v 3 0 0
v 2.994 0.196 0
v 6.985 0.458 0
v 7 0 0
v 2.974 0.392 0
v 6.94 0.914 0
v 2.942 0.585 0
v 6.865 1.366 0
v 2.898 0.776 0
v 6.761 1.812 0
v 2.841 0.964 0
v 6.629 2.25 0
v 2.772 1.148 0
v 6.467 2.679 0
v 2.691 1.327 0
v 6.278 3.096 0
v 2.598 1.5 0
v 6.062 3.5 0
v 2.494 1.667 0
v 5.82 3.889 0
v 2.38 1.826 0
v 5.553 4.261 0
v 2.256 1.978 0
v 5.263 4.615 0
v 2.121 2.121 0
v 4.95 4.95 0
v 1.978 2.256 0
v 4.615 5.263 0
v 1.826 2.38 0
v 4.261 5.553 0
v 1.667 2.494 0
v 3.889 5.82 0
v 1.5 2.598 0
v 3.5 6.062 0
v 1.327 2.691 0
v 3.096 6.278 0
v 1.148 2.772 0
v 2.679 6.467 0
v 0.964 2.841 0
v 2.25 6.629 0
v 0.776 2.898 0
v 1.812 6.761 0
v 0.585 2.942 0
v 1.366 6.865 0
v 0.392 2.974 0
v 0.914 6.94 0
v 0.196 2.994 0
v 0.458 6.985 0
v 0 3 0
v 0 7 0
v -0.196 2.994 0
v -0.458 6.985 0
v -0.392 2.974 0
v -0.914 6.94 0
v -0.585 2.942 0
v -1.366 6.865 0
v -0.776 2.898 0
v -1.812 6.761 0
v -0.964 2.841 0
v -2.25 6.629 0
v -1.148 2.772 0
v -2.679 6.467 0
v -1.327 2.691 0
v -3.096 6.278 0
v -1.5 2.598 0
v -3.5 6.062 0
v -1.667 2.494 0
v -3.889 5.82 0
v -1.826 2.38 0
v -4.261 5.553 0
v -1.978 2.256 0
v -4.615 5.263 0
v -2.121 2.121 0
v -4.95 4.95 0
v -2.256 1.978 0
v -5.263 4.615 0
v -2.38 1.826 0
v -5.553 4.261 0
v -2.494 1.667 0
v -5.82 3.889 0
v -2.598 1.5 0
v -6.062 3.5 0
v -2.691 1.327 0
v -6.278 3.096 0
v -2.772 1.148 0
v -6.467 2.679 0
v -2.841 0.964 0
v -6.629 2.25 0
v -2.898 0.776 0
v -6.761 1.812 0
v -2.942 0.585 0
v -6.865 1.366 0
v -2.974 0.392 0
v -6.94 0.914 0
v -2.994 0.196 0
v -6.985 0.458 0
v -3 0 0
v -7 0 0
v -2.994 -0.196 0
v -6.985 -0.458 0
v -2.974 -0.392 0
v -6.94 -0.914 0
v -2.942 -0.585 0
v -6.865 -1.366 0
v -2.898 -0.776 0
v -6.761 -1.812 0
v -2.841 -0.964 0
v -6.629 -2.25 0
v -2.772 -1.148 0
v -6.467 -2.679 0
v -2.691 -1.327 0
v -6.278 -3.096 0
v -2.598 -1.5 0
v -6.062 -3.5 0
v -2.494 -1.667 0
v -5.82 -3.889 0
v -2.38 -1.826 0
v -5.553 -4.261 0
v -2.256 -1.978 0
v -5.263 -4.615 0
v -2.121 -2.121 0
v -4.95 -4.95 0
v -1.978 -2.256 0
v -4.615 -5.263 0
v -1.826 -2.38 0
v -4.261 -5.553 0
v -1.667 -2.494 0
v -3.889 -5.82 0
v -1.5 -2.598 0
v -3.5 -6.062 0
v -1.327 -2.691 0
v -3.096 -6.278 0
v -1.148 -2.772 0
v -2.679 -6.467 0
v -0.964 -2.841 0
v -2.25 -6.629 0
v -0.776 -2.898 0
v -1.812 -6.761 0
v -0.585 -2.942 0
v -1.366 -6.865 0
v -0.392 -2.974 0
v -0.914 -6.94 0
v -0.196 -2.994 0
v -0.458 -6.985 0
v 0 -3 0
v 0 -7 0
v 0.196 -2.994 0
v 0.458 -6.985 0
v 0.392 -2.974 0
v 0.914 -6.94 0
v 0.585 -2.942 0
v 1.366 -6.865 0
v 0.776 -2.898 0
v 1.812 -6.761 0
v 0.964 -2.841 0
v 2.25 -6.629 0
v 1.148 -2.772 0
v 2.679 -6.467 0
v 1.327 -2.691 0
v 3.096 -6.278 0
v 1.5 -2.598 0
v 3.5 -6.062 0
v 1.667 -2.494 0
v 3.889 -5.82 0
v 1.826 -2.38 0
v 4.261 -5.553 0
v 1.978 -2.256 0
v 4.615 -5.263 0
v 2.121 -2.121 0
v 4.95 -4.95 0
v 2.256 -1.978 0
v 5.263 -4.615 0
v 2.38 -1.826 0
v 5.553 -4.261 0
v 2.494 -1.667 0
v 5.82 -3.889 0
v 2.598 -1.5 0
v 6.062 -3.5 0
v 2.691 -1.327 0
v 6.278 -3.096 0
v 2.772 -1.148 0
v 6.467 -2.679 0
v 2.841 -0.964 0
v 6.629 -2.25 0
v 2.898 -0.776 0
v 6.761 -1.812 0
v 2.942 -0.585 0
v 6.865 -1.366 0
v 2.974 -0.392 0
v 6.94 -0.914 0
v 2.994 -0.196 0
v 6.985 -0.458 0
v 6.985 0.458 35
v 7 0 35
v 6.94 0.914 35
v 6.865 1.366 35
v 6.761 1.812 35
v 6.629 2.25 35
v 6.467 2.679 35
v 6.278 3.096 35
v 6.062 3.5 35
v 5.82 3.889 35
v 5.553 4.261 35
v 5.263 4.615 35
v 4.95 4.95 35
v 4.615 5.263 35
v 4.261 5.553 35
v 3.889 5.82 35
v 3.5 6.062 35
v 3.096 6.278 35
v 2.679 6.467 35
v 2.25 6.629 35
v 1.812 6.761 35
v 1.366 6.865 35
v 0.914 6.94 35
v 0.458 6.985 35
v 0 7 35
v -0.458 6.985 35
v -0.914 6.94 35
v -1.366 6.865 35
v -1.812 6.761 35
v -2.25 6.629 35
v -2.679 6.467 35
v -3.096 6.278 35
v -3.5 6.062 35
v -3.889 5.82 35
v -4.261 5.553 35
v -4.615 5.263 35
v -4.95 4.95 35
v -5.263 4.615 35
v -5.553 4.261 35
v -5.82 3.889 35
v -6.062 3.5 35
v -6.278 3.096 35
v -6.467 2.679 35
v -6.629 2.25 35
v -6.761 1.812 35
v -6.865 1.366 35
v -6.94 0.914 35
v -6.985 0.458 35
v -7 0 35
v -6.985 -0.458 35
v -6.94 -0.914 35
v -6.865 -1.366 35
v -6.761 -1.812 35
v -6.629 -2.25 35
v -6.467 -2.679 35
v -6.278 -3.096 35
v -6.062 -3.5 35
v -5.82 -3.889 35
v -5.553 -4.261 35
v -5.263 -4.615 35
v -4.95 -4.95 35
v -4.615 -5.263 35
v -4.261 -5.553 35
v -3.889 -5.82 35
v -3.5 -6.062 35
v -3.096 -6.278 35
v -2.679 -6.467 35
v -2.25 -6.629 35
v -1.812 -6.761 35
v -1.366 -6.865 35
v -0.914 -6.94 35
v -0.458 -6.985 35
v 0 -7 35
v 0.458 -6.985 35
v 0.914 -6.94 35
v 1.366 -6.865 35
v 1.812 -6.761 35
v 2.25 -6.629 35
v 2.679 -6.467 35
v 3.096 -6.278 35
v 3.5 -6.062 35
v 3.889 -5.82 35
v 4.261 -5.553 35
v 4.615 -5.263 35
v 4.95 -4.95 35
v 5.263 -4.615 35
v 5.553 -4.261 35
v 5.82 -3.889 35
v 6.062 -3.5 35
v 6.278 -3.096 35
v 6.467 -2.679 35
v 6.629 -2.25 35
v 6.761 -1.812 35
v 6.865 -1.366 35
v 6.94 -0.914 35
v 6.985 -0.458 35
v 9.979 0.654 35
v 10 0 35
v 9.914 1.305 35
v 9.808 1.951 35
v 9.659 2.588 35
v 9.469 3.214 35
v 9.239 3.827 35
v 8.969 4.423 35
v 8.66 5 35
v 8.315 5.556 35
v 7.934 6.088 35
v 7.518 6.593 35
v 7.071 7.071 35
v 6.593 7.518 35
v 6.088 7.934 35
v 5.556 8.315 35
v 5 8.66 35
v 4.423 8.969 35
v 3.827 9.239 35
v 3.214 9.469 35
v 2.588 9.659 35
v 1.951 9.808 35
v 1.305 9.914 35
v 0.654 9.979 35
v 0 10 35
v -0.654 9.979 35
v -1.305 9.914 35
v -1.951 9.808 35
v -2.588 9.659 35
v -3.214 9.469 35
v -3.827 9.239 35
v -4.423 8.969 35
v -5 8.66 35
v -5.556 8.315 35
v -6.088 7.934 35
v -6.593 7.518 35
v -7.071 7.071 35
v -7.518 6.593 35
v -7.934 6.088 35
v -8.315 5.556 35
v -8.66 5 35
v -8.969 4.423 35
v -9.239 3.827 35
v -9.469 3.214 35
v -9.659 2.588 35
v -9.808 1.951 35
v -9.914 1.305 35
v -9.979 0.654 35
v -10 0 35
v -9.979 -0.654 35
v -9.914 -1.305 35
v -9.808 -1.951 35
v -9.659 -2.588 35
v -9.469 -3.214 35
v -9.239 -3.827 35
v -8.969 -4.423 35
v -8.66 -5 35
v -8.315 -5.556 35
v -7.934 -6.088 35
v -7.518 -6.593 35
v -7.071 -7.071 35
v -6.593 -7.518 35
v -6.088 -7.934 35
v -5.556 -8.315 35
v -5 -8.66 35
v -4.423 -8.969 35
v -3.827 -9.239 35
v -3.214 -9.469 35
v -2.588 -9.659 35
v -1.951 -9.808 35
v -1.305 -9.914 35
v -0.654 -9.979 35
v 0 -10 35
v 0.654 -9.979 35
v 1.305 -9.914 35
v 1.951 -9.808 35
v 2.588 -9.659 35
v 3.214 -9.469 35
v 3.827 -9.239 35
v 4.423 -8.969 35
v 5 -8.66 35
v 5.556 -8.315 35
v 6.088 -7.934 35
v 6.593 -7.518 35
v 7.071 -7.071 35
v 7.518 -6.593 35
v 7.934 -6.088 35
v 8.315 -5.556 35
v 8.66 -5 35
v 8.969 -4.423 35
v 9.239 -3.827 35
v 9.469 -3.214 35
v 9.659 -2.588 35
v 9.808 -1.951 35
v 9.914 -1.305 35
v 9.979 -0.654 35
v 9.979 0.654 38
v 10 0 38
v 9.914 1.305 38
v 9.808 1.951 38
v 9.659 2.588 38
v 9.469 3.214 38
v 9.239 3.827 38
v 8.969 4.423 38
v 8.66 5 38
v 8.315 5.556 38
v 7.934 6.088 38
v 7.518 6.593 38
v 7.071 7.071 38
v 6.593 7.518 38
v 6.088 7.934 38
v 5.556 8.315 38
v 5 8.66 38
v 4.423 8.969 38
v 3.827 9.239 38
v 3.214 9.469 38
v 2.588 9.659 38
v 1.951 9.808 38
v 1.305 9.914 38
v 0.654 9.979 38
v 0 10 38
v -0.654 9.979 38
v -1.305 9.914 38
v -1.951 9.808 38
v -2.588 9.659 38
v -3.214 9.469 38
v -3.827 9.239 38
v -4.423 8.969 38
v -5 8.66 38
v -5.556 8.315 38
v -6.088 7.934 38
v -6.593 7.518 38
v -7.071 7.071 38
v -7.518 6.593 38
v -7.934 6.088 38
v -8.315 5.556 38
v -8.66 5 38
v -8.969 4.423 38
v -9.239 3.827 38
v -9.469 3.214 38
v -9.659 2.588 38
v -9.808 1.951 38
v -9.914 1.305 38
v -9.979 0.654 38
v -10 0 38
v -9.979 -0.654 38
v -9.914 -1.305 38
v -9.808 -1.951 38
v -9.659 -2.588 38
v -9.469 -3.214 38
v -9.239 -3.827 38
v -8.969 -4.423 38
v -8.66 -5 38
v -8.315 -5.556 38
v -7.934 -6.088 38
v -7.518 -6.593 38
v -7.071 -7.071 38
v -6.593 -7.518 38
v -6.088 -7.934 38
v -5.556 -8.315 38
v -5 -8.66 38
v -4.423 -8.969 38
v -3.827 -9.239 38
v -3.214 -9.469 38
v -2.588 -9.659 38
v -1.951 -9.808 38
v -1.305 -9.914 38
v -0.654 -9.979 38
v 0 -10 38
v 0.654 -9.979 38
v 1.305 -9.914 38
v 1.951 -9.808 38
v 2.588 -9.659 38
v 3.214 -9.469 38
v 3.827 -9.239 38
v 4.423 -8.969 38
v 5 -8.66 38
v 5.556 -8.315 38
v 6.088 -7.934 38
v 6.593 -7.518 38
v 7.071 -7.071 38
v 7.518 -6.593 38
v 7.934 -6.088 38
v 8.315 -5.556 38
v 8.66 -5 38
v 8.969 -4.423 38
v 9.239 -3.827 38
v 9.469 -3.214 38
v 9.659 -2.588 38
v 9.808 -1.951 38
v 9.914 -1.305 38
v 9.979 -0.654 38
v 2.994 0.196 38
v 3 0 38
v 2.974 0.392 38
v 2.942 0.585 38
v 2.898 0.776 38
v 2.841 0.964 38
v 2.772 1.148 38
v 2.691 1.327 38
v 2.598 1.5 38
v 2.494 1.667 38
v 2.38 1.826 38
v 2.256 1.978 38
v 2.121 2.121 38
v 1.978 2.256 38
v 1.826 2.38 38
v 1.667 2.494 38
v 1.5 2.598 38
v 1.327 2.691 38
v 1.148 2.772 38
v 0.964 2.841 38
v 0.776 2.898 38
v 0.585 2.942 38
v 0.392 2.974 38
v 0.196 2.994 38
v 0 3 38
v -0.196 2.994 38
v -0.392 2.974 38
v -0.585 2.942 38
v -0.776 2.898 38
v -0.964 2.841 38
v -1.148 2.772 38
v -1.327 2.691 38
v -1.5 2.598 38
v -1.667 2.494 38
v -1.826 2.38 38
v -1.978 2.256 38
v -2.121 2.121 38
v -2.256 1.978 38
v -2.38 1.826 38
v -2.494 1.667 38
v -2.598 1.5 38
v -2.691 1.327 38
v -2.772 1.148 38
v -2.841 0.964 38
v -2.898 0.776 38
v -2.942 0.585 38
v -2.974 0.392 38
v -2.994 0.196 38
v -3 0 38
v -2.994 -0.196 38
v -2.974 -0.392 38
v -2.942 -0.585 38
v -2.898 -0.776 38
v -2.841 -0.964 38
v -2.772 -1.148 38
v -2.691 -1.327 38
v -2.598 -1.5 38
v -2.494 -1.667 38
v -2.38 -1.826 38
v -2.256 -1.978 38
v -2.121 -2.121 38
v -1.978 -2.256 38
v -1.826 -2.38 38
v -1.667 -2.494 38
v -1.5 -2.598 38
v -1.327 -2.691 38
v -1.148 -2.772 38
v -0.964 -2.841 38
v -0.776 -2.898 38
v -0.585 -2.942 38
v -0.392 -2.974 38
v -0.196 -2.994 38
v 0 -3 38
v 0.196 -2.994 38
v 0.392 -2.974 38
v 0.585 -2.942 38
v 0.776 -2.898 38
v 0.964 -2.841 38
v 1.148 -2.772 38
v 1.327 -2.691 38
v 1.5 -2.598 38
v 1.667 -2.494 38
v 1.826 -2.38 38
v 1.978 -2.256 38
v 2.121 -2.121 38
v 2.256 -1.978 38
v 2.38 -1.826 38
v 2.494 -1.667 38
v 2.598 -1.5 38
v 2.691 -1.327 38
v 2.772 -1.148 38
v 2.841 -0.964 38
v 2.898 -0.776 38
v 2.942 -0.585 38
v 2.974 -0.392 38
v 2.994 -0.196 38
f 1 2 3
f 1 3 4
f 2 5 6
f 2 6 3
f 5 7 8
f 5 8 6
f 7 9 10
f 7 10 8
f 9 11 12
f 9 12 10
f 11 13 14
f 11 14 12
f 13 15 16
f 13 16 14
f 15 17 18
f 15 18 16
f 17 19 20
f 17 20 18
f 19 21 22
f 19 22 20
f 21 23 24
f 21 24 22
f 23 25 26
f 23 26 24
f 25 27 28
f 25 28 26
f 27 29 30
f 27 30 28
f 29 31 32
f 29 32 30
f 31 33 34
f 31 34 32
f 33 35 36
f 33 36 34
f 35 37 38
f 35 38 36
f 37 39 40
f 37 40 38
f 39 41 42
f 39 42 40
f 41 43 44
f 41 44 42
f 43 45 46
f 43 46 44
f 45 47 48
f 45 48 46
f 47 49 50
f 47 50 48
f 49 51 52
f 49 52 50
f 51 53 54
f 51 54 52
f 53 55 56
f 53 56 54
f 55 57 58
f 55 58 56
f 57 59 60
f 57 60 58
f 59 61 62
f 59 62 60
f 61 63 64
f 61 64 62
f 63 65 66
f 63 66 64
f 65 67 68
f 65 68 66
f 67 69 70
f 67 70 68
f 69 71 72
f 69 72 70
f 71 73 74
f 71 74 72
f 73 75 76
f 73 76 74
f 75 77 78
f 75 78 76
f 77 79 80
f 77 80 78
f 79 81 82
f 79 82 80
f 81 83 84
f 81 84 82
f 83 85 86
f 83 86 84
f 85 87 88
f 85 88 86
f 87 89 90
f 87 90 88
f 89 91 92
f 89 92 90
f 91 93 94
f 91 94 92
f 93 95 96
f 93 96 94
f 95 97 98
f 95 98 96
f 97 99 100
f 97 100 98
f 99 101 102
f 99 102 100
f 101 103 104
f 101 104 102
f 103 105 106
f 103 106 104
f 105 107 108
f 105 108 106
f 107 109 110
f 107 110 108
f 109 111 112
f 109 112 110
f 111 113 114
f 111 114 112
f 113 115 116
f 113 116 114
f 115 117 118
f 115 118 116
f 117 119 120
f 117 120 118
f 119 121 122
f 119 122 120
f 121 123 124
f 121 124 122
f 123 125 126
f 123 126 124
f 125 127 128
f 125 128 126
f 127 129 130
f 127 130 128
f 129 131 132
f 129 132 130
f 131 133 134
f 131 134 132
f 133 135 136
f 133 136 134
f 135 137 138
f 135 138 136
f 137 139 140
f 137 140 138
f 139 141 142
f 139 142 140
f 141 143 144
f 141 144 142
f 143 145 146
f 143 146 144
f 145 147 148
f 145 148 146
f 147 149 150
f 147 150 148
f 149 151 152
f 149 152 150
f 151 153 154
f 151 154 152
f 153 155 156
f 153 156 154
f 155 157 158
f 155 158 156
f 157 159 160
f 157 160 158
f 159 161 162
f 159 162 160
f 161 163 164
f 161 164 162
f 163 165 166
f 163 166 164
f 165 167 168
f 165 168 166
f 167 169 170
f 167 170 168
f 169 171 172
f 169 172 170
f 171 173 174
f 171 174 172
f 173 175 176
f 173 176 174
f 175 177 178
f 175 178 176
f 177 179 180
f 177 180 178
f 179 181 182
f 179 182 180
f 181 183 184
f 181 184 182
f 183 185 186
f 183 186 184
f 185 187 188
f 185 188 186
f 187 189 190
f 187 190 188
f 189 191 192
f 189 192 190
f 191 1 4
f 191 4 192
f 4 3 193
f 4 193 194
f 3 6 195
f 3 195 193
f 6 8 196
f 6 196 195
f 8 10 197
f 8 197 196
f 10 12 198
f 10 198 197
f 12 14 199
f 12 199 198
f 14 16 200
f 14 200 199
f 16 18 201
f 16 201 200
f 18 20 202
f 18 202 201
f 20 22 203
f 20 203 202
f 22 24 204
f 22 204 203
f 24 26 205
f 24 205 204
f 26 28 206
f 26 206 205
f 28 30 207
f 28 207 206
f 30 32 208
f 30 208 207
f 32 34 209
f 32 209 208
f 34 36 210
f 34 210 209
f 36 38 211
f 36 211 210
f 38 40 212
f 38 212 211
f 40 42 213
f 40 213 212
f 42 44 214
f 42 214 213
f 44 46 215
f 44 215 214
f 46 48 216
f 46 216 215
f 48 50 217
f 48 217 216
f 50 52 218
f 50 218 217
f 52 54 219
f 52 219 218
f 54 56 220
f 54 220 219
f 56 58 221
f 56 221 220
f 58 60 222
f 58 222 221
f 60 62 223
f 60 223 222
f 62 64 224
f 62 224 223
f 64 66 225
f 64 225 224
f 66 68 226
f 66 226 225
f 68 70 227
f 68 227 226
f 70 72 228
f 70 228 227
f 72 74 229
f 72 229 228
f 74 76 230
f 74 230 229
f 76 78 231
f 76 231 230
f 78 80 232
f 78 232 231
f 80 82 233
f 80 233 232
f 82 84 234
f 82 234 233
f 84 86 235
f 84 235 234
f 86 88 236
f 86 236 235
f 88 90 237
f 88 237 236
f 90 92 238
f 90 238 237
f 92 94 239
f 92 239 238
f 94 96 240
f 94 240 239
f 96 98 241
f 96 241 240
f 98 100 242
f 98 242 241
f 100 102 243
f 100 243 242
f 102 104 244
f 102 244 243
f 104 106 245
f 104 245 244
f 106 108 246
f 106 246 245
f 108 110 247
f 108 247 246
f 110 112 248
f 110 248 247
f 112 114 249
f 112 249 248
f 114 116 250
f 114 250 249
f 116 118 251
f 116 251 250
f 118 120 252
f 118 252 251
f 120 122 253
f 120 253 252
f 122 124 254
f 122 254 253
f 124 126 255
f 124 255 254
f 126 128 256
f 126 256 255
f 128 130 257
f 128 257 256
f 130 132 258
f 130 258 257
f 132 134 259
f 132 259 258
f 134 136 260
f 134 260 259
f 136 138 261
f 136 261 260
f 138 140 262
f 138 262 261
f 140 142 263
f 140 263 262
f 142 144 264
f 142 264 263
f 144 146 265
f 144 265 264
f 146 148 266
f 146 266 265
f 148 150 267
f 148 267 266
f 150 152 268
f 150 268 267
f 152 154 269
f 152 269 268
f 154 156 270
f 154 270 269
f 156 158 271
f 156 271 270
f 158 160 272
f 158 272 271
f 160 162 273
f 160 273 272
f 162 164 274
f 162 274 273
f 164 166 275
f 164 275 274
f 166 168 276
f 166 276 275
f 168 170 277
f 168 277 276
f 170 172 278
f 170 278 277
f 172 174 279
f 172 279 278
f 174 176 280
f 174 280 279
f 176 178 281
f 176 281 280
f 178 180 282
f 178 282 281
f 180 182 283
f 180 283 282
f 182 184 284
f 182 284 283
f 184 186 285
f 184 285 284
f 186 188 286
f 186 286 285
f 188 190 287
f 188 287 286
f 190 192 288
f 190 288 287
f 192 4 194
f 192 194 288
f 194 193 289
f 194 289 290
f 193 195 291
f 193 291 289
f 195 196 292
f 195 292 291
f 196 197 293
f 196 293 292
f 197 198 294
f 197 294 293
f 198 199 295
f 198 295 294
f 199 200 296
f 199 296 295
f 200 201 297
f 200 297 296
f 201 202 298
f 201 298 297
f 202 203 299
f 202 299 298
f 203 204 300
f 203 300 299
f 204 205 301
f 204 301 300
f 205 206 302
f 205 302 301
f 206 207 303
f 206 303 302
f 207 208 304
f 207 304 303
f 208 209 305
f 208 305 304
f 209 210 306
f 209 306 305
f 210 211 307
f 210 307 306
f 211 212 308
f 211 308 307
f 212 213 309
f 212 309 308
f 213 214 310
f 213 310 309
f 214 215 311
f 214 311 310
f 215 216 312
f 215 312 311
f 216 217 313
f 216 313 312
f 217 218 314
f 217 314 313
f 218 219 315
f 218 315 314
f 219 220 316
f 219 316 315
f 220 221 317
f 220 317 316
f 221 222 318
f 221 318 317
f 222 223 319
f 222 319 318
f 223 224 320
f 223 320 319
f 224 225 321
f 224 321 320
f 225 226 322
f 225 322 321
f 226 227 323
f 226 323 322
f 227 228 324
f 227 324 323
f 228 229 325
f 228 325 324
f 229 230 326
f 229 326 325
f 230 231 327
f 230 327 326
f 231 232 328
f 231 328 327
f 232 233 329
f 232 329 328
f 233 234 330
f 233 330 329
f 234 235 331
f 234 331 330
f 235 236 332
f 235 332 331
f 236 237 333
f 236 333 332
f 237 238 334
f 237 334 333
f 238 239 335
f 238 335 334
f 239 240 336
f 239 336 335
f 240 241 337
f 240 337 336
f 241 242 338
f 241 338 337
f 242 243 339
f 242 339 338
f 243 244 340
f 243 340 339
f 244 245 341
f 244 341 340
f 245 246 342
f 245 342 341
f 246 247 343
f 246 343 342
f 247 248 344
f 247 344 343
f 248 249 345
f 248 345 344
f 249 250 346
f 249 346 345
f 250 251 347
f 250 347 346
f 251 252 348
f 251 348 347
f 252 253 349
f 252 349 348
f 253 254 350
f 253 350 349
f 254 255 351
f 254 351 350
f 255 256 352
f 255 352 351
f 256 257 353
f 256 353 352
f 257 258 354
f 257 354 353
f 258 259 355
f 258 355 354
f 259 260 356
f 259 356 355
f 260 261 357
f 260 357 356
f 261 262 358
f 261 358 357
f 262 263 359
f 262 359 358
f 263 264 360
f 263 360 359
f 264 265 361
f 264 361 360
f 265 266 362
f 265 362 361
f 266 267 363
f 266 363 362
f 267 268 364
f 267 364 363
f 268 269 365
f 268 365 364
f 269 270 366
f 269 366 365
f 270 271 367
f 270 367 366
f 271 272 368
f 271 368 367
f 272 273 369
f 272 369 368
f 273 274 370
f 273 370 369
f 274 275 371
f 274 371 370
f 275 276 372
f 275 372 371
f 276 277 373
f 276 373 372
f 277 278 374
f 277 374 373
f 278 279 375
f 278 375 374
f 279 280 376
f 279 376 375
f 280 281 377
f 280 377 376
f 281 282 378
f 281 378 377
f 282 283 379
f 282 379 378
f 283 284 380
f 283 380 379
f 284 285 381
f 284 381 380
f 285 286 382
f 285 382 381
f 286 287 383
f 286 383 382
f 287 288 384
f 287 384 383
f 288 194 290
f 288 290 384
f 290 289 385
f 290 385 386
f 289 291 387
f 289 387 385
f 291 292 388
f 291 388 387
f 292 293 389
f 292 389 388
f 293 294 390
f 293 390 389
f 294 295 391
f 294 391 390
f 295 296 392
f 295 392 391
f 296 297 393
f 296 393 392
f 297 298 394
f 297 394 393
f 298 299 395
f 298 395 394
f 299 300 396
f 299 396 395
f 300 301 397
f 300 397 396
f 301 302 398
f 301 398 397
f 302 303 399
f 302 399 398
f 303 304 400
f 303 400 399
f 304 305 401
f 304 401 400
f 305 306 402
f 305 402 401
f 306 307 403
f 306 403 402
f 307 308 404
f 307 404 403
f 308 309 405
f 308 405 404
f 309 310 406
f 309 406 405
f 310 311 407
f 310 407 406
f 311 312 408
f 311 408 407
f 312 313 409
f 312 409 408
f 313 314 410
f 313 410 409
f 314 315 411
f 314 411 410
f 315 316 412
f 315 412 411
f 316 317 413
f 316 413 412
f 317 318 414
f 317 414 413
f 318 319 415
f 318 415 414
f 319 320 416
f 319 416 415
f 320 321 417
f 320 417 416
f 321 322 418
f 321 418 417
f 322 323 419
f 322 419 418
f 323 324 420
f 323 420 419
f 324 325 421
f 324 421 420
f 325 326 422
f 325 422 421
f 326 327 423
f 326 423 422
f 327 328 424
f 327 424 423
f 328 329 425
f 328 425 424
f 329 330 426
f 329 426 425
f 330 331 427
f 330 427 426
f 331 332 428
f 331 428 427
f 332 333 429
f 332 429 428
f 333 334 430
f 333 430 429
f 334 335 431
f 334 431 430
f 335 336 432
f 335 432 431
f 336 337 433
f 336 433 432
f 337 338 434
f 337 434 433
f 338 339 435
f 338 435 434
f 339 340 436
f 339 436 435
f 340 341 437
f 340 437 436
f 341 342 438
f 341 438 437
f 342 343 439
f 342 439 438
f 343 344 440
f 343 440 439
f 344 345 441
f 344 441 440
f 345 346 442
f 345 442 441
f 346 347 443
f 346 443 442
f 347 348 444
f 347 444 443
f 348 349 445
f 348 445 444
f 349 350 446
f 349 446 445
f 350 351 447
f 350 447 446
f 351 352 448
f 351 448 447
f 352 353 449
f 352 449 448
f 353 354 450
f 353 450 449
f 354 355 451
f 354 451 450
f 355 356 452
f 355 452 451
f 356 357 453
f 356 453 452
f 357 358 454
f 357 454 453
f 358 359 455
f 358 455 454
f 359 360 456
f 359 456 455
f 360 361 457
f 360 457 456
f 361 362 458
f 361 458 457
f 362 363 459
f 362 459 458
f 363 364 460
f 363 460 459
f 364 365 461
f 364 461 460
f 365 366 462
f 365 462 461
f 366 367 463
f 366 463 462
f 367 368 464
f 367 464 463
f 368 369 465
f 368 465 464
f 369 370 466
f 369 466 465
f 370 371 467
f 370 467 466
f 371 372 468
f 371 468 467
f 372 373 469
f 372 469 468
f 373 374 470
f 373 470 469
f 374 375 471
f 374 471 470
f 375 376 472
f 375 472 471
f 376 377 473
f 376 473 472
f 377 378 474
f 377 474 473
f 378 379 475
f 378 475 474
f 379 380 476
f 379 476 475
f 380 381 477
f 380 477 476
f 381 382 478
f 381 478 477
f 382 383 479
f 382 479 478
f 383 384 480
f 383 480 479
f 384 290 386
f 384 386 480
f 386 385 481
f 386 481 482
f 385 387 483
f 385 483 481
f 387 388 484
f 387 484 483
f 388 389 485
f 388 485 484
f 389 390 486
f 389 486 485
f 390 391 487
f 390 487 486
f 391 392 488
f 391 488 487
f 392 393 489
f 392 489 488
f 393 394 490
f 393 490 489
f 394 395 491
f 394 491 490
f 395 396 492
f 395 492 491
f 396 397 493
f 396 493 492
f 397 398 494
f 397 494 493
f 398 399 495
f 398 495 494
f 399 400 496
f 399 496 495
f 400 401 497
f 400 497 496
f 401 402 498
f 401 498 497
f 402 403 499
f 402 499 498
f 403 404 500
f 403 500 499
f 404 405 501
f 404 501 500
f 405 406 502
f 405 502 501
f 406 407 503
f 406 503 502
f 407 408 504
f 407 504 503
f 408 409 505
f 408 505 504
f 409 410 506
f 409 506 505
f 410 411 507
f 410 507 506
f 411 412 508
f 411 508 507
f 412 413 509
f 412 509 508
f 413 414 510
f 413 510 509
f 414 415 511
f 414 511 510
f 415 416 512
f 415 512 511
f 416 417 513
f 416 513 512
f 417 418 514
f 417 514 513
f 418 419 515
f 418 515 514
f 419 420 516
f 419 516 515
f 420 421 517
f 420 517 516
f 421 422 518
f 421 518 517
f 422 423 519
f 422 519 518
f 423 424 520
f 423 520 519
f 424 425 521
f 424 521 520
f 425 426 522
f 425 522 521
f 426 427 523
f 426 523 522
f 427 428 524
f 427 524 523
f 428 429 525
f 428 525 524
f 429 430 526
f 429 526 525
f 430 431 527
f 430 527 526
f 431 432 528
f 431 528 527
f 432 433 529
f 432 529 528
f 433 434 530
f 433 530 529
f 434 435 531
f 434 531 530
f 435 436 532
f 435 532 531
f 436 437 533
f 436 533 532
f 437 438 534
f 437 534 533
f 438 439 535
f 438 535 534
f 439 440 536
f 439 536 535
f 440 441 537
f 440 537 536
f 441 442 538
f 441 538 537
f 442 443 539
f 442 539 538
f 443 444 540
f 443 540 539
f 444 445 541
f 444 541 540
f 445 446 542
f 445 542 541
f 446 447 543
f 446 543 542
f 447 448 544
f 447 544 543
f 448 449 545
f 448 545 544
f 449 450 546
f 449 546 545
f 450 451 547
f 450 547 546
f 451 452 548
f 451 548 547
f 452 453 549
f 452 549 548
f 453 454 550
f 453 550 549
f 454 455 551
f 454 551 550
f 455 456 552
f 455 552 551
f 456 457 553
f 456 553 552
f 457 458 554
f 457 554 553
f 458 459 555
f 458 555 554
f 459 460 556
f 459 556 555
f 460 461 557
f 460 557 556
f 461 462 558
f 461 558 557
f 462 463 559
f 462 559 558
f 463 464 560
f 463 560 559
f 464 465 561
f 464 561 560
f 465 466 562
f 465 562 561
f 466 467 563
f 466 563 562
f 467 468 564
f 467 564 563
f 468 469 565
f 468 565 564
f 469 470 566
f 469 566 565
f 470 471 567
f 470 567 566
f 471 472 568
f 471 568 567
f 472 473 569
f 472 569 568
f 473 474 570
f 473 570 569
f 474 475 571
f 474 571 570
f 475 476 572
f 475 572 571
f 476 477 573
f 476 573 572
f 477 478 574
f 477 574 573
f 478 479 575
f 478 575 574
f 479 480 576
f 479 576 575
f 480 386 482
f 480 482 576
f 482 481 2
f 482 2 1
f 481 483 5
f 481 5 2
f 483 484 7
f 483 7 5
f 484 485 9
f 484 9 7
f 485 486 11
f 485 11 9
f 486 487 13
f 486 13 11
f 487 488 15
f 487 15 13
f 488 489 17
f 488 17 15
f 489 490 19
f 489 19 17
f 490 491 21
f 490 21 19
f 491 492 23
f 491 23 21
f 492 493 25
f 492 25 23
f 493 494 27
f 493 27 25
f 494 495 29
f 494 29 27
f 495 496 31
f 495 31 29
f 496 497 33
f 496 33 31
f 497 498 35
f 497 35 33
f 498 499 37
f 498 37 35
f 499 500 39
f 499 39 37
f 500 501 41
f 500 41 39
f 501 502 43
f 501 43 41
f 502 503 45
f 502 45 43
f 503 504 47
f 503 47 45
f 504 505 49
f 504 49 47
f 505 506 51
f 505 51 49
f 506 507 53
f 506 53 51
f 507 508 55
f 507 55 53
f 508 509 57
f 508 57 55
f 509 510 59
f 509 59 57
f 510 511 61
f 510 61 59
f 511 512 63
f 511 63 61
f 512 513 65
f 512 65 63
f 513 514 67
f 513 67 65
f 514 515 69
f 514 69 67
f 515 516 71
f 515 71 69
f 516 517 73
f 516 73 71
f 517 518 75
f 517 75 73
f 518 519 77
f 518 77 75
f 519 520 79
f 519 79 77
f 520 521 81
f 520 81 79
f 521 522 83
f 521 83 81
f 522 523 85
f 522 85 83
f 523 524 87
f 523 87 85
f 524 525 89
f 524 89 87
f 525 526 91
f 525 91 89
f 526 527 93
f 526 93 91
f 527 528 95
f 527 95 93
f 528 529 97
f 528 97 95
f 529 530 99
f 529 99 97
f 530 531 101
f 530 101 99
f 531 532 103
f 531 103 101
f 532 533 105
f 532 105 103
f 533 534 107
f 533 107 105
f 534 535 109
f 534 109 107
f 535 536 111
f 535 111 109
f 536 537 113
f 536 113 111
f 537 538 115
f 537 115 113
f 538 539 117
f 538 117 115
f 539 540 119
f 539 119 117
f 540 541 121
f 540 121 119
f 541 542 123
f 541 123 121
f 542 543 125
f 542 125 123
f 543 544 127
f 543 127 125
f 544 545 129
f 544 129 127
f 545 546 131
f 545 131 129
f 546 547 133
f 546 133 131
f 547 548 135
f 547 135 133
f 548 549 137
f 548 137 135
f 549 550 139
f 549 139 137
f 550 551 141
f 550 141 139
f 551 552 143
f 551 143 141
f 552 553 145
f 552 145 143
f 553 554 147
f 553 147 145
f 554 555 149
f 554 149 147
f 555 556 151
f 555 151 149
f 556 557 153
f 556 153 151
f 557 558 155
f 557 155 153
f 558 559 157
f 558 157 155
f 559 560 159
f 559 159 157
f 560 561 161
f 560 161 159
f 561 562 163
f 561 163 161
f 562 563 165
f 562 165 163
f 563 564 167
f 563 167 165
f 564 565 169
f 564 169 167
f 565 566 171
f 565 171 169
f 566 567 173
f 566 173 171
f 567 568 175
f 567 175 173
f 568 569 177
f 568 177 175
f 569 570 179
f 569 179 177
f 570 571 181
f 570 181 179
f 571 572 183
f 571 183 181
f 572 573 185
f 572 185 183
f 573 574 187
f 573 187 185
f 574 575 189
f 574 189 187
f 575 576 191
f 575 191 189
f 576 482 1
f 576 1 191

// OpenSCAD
// Original MechIntel educational model. CC0-1.0. Units: mm.
// Not a standardized or load-rated component.
$fn=96;
// Section points: [radius, height], mm. Edit to change the profile.
section=[[3, 0], [7, 0], [7, 35], [10, 35], [10, 38], [3, 38]];
rotate_extrude($fn=96) polygon(points=section);
